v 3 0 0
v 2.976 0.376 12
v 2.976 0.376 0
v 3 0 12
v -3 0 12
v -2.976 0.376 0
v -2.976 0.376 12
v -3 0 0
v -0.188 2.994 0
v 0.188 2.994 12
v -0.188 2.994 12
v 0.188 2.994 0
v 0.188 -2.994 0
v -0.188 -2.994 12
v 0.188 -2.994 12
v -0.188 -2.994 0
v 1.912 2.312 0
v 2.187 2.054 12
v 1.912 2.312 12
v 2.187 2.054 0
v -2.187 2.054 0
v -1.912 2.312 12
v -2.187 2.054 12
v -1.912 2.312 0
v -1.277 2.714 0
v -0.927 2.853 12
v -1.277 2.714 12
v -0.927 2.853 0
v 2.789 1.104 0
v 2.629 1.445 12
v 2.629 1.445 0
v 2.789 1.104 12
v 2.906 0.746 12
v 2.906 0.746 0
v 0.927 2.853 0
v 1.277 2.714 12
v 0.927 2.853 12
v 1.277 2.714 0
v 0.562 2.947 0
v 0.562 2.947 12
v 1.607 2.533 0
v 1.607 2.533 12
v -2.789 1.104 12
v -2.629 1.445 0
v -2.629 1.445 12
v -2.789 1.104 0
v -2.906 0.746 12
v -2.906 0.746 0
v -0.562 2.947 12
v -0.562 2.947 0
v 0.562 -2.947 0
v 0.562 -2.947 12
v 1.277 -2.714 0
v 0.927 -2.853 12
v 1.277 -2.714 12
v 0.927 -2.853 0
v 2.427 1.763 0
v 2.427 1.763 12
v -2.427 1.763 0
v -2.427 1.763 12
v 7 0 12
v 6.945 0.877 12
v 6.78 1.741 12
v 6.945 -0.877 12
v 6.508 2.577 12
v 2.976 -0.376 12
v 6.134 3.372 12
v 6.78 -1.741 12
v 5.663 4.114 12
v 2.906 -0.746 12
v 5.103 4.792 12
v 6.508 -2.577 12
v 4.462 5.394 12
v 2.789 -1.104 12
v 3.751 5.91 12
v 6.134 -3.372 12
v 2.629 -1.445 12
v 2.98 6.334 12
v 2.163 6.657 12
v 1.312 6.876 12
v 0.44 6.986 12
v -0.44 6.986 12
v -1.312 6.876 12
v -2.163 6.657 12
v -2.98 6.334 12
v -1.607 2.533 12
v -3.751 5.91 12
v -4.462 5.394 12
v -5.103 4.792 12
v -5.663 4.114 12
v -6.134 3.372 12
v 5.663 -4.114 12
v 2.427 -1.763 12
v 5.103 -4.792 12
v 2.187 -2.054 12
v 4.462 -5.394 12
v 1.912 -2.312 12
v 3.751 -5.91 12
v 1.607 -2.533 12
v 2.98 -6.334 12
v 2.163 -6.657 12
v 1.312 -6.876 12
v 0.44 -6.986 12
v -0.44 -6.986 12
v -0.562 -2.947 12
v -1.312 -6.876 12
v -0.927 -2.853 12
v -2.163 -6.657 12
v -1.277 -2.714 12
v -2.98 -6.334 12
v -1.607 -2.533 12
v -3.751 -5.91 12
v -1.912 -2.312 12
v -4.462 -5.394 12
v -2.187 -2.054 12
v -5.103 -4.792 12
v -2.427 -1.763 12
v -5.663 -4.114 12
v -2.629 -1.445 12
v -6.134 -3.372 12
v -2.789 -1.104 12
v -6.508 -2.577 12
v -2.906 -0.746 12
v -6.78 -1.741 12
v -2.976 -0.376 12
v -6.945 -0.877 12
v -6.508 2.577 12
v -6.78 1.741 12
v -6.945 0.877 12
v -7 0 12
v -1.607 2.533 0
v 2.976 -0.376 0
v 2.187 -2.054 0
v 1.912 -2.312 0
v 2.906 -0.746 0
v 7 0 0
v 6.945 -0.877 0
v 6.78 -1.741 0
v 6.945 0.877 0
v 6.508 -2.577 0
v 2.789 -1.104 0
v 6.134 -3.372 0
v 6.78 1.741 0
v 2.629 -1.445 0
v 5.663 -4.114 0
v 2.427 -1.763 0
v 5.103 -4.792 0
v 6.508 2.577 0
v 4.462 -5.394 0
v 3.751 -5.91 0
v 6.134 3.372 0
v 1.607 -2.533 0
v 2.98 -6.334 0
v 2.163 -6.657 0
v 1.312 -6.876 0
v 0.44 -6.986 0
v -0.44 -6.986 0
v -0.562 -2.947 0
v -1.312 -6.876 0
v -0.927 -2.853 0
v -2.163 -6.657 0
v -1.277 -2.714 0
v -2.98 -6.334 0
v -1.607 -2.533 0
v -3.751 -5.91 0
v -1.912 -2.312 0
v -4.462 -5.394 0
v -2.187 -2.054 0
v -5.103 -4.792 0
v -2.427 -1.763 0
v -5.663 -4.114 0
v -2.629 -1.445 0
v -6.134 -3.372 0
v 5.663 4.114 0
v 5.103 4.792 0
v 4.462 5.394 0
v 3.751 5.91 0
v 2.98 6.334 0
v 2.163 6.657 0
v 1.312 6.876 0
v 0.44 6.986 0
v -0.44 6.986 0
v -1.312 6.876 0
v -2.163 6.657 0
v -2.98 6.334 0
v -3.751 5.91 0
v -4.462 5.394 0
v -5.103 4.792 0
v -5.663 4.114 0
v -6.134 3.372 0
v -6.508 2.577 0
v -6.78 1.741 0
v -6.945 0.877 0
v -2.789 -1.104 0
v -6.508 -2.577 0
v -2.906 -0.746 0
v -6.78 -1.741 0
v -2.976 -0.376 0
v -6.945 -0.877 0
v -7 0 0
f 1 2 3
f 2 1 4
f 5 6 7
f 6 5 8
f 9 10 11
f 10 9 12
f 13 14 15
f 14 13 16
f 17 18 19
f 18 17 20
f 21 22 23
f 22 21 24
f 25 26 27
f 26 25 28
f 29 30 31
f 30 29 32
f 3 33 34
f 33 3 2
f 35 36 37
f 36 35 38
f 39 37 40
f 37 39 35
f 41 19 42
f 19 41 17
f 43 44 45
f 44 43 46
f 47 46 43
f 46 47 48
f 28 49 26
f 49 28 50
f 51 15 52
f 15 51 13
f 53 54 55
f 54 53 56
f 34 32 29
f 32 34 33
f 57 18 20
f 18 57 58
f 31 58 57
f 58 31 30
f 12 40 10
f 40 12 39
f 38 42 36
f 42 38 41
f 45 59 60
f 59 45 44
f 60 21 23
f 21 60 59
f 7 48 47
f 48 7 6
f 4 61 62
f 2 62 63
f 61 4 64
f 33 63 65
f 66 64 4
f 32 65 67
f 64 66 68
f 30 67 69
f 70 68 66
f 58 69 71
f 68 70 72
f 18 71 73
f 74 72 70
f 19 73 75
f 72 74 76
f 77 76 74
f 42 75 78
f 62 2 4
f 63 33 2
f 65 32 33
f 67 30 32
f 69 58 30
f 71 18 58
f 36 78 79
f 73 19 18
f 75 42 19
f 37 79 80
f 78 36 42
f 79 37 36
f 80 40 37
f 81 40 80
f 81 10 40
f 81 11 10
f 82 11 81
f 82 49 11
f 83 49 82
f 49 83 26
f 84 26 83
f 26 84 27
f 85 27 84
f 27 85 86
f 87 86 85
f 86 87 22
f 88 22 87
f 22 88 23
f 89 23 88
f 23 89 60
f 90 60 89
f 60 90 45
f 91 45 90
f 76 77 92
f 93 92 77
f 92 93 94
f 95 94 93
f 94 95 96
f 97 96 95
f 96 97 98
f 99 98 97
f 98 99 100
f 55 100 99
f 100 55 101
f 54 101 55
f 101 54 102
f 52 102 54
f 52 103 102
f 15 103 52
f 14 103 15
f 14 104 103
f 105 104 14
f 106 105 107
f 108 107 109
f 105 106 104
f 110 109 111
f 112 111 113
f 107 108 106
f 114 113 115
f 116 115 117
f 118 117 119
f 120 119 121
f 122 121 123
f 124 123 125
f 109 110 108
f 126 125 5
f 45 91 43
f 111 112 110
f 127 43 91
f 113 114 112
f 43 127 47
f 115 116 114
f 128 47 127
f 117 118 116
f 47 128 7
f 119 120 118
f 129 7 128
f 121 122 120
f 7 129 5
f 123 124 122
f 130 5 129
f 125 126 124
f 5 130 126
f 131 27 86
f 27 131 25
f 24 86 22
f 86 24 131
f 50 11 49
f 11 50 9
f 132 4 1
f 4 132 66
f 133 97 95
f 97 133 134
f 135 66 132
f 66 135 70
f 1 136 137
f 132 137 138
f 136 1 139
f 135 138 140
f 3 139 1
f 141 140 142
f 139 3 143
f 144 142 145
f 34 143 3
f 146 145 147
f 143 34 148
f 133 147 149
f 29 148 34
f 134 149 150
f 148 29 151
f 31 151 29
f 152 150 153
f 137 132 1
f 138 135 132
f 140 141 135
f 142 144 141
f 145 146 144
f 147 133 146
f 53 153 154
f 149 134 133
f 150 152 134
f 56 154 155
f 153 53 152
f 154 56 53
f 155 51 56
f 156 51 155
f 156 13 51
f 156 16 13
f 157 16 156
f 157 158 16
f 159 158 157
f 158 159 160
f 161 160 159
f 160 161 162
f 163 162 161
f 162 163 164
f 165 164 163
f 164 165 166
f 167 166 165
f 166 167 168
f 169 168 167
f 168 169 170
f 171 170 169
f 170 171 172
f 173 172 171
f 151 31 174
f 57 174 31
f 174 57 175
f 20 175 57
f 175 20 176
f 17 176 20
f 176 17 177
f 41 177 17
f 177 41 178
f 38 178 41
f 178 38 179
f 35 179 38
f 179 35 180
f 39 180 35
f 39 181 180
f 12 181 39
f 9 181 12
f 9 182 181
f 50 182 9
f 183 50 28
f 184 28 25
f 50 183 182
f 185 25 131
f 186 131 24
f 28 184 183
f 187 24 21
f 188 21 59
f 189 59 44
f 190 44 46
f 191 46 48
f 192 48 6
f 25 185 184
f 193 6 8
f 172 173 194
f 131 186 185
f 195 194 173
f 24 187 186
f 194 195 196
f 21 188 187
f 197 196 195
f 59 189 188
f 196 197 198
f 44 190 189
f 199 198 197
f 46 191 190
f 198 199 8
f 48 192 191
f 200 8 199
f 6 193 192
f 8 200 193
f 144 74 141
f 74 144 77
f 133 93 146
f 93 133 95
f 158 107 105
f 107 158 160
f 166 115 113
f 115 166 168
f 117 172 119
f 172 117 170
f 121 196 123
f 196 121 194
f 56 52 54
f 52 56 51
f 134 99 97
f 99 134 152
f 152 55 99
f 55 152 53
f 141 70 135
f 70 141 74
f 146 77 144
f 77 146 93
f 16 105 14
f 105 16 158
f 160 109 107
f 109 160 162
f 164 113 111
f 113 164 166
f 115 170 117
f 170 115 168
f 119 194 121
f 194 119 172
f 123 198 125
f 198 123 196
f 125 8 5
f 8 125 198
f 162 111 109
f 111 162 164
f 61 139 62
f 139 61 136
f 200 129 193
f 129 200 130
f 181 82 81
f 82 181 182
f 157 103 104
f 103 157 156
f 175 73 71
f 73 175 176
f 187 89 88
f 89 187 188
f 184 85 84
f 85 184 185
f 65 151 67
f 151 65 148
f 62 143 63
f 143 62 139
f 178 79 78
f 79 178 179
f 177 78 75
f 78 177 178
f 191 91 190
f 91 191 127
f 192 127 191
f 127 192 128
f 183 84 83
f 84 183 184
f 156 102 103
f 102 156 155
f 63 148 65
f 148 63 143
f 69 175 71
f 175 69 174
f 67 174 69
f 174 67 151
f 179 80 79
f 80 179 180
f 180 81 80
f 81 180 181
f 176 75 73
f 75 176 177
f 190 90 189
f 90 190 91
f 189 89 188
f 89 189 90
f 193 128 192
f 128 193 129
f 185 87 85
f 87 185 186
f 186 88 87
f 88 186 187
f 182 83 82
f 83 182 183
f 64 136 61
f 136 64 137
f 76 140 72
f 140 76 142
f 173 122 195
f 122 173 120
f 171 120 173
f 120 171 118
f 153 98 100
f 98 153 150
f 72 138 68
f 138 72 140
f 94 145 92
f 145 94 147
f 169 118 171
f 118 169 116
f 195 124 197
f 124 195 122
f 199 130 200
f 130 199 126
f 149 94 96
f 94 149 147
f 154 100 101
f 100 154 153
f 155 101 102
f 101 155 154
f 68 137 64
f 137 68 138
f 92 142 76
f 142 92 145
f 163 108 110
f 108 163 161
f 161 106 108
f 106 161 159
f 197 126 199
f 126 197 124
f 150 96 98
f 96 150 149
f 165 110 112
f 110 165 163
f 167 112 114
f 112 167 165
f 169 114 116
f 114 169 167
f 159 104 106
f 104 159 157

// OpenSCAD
$fn = 50;


difference() {
	union() {
		cylinder(h = 12, r = 7.0000000000);
	}
	union() {
		cylinder(h = 12, r = 3.0000000000);
		cylinder(h = 12, r = 1.5000000000);
		cylinder(h = 12, r = 1.5000000000);
		cylinder(h = 12, r = 1.5000000000);
	}
}
